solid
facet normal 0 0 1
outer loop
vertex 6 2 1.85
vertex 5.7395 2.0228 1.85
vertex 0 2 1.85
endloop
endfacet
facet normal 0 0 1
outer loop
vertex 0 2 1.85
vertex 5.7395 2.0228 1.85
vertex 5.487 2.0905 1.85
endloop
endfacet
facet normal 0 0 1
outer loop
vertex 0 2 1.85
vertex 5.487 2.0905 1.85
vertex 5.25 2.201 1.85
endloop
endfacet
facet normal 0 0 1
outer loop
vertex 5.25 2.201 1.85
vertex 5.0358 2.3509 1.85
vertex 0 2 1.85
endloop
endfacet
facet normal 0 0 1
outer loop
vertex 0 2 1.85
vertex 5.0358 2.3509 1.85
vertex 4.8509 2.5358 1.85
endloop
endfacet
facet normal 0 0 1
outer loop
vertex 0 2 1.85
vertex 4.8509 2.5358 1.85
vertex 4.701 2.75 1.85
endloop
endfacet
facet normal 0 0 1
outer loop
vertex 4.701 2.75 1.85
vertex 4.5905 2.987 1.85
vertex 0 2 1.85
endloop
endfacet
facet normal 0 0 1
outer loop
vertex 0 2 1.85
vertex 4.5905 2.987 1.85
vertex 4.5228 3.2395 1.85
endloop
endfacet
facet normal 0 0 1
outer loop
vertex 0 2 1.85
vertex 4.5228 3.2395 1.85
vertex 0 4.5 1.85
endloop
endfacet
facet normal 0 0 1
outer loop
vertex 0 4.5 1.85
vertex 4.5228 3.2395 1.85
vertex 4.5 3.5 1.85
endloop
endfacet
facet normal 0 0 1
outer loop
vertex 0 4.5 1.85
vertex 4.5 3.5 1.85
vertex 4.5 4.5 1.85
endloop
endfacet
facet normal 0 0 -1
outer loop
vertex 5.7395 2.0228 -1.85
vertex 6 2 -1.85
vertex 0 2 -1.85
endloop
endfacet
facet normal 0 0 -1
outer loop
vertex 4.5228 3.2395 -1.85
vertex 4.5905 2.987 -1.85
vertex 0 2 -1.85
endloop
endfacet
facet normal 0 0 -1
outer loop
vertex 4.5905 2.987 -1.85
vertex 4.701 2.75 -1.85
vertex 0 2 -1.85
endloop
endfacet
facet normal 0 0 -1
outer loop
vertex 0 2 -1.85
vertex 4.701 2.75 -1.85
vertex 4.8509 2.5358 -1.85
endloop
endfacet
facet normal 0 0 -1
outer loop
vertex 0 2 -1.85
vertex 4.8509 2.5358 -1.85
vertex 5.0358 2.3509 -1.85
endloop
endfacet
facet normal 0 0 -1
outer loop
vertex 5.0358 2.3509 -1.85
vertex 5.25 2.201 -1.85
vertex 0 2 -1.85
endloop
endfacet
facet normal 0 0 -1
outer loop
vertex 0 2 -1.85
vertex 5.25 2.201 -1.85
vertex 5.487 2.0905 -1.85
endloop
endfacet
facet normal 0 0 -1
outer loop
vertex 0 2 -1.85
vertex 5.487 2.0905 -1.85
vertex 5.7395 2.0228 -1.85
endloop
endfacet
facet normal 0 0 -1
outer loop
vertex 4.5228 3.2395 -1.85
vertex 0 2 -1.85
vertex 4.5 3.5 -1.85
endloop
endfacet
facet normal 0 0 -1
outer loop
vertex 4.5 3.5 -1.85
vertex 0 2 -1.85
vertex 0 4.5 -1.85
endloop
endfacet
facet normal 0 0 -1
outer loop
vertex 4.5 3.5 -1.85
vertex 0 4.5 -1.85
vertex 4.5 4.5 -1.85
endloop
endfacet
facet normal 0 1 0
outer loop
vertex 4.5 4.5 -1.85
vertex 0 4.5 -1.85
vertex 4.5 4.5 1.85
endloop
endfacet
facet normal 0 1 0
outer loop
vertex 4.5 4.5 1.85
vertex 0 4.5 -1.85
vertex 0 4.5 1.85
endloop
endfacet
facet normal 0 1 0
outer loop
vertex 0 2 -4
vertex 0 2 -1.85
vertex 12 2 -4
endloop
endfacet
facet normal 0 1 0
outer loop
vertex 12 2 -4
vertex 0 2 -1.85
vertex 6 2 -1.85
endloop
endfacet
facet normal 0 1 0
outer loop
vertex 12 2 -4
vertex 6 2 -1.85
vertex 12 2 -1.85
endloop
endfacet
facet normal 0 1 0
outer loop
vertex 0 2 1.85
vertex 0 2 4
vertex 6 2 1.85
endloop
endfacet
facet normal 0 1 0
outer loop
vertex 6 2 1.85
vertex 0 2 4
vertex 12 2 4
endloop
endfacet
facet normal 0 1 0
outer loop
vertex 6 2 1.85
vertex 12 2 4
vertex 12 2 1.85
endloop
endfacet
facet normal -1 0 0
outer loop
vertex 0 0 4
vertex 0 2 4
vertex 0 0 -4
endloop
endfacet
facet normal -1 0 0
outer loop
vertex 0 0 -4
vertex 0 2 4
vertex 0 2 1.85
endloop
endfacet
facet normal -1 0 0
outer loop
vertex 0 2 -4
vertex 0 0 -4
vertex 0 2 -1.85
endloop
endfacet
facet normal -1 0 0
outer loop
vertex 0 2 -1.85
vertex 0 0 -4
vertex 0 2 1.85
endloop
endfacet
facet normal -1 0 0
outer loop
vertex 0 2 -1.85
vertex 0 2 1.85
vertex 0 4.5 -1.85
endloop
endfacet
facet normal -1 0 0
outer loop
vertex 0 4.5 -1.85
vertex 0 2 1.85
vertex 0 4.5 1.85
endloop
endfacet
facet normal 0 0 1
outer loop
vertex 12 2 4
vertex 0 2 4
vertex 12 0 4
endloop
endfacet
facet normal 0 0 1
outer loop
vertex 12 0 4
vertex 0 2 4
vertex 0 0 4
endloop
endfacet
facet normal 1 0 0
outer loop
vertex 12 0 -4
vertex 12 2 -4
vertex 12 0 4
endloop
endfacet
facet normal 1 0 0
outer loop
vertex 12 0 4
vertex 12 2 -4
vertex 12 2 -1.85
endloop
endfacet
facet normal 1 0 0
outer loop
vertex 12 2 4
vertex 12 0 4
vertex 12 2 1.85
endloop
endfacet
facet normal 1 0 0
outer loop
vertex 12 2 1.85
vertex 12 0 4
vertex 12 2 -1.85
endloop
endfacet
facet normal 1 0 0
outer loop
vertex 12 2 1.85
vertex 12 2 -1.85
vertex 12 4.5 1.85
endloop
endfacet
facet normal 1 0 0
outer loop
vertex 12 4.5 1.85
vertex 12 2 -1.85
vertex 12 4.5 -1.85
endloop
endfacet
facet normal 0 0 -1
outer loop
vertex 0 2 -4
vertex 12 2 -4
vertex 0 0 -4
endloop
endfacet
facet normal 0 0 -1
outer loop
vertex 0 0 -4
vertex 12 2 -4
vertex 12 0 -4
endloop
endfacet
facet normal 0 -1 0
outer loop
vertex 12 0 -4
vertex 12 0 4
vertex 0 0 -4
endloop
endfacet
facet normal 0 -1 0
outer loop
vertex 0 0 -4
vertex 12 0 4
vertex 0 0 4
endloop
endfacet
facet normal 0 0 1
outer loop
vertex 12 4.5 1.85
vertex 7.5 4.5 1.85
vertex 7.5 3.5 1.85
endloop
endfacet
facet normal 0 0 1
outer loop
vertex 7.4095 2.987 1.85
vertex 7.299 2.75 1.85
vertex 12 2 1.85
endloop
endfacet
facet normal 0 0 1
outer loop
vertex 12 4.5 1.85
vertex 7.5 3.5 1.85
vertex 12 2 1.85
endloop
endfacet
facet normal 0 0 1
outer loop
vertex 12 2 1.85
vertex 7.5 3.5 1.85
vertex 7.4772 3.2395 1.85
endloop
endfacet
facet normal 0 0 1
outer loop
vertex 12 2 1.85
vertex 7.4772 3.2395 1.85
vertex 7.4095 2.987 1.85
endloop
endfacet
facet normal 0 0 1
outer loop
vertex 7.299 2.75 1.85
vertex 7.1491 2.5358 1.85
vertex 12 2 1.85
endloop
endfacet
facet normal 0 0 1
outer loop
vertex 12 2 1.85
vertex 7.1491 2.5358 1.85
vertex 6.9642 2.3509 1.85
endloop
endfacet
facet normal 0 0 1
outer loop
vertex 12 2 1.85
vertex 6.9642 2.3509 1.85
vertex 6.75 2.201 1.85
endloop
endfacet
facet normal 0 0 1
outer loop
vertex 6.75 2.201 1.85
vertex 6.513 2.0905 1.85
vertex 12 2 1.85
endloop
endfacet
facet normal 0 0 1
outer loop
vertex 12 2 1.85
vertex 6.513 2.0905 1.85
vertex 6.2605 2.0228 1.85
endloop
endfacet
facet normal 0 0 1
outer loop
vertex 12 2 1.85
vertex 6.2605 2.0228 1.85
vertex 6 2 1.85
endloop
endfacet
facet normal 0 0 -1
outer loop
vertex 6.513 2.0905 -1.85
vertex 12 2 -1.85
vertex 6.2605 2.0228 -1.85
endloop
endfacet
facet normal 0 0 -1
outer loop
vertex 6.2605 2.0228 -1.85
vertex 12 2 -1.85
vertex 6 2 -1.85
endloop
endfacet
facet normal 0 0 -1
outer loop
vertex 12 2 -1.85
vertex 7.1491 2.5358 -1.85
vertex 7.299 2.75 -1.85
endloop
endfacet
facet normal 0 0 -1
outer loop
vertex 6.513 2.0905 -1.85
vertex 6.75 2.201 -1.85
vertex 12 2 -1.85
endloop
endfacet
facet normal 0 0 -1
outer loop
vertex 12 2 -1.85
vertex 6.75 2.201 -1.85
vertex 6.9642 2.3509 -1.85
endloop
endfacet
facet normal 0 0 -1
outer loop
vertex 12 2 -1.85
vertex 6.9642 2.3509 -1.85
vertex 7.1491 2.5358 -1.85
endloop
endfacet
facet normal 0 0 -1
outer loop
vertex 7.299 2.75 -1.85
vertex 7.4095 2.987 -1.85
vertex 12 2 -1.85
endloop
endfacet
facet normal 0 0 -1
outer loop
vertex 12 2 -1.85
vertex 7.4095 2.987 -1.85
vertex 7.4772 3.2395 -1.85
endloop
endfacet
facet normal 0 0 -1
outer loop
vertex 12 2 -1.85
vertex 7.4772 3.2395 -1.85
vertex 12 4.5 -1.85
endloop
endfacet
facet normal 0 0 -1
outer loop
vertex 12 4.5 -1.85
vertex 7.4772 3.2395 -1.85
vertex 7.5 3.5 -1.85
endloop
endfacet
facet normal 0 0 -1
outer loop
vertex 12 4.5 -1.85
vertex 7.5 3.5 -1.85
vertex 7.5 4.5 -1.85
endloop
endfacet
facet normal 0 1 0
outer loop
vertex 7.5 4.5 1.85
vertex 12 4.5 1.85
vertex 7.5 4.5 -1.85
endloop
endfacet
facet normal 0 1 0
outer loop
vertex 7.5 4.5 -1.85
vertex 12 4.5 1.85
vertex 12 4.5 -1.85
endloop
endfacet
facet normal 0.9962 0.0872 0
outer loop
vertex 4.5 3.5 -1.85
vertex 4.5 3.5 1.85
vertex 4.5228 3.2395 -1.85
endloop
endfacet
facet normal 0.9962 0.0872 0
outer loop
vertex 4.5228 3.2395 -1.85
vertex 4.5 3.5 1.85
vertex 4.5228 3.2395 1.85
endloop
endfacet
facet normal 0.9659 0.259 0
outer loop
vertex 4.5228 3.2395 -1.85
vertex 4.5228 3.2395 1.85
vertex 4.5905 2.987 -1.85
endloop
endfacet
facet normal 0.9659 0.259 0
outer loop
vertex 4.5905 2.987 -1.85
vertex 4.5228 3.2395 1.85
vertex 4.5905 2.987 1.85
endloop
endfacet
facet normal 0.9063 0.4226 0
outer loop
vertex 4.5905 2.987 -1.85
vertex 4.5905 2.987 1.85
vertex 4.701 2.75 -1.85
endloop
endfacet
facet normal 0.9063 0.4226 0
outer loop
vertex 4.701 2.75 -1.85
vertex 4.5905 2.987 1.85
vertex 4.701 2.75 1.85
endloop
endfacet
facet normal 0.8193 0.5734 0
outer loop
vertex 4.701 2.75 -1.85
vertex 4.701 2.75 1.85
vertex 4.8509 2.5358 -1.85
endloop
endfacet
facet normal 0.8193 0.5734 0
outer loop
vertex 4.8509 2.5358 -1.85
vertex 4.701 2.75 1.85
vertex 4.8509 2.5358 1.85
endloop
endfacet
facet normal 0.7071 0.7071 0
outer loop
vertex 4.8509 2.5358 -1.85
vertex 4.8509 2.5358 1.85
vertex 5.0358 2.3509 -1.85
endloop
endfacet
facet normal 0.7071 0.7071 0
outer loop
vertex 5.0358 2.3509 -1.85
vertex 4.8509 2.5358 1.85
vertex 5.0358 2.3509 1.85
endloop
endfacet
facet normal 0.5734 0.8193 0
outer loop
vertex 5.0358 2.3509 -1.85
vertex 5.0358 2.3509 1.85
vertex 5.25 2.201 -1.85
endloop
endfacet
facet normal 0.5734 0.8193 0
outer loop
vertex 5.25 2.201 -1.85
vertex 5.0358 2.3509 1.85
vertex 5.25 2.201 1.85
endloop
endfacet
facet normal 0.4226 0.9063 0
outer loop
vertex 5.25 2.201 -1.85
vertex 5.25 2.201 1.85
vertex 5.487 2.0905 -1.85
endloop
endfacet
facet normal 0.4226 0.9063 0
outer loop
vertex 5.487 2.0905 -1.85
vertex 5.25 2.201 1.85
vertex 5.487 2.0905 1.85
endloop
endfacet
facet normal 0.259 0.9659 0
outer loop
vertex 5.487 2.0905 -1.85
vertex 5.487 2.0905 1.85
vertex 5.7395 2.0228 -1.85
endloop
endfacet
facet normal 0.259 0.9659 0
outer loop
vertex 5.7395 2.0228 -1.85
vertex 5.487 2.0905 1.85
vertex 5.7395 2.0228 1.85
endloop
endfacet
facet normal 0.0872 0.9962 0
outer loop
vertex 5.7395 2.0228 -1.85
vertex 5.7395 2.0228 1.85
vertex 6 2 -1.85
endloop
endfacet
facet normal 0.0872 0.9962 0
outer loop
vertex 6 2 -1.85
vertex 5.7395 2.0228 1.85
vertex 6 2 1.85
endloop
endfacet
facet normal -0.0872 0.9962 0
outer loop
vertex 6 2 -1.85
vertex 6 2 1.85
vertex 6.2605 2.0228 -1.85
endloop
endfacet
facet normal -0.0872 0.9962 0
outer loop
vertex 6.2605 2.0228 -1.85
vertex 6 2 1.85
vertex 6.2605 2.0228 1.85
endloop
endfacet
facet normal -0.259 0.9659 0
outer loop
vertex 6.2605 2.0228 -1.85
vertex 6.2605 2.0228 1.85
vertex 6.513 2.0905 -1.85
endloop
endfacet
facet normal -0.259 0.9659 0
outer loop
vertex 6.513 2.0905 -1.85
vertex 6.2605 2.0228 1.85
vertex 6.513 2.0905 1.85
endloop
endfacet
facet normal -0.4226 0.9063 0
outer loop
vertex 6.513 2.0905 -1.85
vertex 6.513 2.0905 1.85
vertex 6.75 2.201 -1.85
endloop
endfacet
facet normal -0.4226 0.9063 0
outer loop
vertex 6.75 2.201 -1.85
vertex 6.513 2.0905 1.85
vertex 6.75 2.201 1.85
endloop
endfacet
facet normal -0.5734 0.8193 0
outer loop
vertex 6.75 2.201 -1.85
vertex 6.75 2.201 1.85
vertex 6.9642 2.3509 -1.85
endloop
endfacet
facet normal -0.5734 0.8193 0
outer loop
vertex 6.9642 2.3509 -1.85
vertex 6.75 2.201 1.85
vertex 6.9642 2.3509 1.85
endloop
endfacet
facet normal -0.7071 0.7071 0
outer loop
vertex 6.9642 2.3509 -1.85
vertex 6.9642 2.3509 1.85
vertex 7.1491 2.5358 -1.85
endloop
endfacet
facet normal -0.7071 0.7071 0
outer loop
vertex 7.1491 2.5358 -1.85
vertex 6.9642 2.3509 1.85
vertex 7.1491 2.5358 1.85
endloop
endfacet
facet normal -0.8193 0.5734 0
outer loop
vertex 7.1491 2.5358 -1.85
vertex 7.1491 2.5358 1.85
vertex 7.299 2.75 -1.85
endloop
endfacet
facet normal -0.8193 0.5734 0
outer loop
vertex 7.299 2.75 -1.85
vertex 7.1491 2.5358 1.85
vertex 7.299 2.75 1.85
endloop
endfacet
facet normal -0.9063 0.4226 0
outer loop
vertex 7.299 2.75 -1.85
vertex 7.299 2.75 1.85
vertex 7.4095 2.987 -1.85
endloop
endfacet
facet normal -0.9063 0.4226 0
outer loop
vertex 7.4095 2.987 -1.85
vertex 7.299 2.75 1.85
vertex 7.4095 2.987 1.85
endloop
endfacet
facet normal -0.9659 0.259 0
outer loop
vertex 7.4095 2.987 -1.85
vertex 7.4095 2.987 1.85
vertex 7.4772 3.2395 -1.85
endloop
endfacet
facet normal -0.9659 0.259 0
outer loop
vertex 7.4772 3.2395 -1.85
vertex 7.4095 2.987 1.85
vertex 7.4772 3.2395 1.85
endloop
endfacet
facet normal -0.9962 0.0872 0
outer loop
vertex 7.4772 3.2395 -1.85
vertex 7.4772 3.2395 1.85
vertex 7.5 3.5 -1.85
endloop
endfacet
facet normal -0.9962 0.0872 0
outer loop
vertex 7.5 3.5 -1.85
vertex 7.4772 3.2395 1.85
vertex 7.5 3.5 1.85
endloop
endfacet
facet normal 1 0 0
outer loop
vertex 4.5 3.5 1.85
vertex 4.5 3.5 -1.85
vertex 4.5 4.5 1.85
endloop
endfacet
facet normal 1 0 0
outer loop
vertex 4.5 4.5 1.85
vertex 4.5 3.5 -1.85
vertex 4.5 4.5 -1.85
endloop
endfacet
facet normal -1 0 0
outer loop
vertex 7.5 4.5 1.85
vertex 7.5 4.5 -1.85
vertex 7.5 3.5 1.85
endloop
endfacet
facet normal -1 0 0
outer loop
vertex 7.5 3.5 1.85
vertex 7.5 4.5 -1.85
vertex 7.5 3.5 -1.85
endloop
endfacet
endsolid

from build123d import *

# Parameters (mm, degrees)
SKETCH1_W           = 12
SKETCH1_H           = 8
BOSS_EXTRUDE1_DEPTH = 2
SKETCH2_W           = 12
SKETCH2_H           = 3.7
BOSS_EXTRUDE2_DEPTH = 2.5
CUT_EXTRUDE1_DEPTH  = 15.088026831


with BuildPart() as part:
    # Sketch1 → Boss-Extrude1 (new body)
    with BuildSketch(Plane(origin=(0, 0, 0), x_dir=(1, 0, 0), z_dir=(0, 1, 0))):
        with Locations((6, 0)):
            Rectangle(SKETCH1_W, SKETCH1_H)
    extrude(amount=BOSS_EXTRUDE1_DEPTH)

    # Sketch2 → Boss-Extrude2 (add)
    with BuildSketch(Plane(origin=(0, 2, 0), x_dir=(1, 0, 0), z_dir=(0, 1, 0))):
        with Locations((6, 0)):
            Rectangle(SKETCH2_W, SKETCH2_H)
    extrude(amount=BOSS_EXTRUDE2_DEPTH)

    # Sketch3 → Cut-Extrude1 (cut, through all)
    with BuildSketch(Plane.XY.offset(1.85)):
        with BuildLine():
            Line((4.5, 3.5), (4.5, 5))
            Line((4.5, 5), (7.5, 5))
            Line((7.5, 5), (7.5, 3.5))
            ThreePointArc((7.5, 3.5), (6, 2), (4.5, 3.5))
        make_face()
    extrude(amount=-CUT_EXTRUDE1_DEPTH, mode=Mode.SUBTRACT)


solid = part.part
